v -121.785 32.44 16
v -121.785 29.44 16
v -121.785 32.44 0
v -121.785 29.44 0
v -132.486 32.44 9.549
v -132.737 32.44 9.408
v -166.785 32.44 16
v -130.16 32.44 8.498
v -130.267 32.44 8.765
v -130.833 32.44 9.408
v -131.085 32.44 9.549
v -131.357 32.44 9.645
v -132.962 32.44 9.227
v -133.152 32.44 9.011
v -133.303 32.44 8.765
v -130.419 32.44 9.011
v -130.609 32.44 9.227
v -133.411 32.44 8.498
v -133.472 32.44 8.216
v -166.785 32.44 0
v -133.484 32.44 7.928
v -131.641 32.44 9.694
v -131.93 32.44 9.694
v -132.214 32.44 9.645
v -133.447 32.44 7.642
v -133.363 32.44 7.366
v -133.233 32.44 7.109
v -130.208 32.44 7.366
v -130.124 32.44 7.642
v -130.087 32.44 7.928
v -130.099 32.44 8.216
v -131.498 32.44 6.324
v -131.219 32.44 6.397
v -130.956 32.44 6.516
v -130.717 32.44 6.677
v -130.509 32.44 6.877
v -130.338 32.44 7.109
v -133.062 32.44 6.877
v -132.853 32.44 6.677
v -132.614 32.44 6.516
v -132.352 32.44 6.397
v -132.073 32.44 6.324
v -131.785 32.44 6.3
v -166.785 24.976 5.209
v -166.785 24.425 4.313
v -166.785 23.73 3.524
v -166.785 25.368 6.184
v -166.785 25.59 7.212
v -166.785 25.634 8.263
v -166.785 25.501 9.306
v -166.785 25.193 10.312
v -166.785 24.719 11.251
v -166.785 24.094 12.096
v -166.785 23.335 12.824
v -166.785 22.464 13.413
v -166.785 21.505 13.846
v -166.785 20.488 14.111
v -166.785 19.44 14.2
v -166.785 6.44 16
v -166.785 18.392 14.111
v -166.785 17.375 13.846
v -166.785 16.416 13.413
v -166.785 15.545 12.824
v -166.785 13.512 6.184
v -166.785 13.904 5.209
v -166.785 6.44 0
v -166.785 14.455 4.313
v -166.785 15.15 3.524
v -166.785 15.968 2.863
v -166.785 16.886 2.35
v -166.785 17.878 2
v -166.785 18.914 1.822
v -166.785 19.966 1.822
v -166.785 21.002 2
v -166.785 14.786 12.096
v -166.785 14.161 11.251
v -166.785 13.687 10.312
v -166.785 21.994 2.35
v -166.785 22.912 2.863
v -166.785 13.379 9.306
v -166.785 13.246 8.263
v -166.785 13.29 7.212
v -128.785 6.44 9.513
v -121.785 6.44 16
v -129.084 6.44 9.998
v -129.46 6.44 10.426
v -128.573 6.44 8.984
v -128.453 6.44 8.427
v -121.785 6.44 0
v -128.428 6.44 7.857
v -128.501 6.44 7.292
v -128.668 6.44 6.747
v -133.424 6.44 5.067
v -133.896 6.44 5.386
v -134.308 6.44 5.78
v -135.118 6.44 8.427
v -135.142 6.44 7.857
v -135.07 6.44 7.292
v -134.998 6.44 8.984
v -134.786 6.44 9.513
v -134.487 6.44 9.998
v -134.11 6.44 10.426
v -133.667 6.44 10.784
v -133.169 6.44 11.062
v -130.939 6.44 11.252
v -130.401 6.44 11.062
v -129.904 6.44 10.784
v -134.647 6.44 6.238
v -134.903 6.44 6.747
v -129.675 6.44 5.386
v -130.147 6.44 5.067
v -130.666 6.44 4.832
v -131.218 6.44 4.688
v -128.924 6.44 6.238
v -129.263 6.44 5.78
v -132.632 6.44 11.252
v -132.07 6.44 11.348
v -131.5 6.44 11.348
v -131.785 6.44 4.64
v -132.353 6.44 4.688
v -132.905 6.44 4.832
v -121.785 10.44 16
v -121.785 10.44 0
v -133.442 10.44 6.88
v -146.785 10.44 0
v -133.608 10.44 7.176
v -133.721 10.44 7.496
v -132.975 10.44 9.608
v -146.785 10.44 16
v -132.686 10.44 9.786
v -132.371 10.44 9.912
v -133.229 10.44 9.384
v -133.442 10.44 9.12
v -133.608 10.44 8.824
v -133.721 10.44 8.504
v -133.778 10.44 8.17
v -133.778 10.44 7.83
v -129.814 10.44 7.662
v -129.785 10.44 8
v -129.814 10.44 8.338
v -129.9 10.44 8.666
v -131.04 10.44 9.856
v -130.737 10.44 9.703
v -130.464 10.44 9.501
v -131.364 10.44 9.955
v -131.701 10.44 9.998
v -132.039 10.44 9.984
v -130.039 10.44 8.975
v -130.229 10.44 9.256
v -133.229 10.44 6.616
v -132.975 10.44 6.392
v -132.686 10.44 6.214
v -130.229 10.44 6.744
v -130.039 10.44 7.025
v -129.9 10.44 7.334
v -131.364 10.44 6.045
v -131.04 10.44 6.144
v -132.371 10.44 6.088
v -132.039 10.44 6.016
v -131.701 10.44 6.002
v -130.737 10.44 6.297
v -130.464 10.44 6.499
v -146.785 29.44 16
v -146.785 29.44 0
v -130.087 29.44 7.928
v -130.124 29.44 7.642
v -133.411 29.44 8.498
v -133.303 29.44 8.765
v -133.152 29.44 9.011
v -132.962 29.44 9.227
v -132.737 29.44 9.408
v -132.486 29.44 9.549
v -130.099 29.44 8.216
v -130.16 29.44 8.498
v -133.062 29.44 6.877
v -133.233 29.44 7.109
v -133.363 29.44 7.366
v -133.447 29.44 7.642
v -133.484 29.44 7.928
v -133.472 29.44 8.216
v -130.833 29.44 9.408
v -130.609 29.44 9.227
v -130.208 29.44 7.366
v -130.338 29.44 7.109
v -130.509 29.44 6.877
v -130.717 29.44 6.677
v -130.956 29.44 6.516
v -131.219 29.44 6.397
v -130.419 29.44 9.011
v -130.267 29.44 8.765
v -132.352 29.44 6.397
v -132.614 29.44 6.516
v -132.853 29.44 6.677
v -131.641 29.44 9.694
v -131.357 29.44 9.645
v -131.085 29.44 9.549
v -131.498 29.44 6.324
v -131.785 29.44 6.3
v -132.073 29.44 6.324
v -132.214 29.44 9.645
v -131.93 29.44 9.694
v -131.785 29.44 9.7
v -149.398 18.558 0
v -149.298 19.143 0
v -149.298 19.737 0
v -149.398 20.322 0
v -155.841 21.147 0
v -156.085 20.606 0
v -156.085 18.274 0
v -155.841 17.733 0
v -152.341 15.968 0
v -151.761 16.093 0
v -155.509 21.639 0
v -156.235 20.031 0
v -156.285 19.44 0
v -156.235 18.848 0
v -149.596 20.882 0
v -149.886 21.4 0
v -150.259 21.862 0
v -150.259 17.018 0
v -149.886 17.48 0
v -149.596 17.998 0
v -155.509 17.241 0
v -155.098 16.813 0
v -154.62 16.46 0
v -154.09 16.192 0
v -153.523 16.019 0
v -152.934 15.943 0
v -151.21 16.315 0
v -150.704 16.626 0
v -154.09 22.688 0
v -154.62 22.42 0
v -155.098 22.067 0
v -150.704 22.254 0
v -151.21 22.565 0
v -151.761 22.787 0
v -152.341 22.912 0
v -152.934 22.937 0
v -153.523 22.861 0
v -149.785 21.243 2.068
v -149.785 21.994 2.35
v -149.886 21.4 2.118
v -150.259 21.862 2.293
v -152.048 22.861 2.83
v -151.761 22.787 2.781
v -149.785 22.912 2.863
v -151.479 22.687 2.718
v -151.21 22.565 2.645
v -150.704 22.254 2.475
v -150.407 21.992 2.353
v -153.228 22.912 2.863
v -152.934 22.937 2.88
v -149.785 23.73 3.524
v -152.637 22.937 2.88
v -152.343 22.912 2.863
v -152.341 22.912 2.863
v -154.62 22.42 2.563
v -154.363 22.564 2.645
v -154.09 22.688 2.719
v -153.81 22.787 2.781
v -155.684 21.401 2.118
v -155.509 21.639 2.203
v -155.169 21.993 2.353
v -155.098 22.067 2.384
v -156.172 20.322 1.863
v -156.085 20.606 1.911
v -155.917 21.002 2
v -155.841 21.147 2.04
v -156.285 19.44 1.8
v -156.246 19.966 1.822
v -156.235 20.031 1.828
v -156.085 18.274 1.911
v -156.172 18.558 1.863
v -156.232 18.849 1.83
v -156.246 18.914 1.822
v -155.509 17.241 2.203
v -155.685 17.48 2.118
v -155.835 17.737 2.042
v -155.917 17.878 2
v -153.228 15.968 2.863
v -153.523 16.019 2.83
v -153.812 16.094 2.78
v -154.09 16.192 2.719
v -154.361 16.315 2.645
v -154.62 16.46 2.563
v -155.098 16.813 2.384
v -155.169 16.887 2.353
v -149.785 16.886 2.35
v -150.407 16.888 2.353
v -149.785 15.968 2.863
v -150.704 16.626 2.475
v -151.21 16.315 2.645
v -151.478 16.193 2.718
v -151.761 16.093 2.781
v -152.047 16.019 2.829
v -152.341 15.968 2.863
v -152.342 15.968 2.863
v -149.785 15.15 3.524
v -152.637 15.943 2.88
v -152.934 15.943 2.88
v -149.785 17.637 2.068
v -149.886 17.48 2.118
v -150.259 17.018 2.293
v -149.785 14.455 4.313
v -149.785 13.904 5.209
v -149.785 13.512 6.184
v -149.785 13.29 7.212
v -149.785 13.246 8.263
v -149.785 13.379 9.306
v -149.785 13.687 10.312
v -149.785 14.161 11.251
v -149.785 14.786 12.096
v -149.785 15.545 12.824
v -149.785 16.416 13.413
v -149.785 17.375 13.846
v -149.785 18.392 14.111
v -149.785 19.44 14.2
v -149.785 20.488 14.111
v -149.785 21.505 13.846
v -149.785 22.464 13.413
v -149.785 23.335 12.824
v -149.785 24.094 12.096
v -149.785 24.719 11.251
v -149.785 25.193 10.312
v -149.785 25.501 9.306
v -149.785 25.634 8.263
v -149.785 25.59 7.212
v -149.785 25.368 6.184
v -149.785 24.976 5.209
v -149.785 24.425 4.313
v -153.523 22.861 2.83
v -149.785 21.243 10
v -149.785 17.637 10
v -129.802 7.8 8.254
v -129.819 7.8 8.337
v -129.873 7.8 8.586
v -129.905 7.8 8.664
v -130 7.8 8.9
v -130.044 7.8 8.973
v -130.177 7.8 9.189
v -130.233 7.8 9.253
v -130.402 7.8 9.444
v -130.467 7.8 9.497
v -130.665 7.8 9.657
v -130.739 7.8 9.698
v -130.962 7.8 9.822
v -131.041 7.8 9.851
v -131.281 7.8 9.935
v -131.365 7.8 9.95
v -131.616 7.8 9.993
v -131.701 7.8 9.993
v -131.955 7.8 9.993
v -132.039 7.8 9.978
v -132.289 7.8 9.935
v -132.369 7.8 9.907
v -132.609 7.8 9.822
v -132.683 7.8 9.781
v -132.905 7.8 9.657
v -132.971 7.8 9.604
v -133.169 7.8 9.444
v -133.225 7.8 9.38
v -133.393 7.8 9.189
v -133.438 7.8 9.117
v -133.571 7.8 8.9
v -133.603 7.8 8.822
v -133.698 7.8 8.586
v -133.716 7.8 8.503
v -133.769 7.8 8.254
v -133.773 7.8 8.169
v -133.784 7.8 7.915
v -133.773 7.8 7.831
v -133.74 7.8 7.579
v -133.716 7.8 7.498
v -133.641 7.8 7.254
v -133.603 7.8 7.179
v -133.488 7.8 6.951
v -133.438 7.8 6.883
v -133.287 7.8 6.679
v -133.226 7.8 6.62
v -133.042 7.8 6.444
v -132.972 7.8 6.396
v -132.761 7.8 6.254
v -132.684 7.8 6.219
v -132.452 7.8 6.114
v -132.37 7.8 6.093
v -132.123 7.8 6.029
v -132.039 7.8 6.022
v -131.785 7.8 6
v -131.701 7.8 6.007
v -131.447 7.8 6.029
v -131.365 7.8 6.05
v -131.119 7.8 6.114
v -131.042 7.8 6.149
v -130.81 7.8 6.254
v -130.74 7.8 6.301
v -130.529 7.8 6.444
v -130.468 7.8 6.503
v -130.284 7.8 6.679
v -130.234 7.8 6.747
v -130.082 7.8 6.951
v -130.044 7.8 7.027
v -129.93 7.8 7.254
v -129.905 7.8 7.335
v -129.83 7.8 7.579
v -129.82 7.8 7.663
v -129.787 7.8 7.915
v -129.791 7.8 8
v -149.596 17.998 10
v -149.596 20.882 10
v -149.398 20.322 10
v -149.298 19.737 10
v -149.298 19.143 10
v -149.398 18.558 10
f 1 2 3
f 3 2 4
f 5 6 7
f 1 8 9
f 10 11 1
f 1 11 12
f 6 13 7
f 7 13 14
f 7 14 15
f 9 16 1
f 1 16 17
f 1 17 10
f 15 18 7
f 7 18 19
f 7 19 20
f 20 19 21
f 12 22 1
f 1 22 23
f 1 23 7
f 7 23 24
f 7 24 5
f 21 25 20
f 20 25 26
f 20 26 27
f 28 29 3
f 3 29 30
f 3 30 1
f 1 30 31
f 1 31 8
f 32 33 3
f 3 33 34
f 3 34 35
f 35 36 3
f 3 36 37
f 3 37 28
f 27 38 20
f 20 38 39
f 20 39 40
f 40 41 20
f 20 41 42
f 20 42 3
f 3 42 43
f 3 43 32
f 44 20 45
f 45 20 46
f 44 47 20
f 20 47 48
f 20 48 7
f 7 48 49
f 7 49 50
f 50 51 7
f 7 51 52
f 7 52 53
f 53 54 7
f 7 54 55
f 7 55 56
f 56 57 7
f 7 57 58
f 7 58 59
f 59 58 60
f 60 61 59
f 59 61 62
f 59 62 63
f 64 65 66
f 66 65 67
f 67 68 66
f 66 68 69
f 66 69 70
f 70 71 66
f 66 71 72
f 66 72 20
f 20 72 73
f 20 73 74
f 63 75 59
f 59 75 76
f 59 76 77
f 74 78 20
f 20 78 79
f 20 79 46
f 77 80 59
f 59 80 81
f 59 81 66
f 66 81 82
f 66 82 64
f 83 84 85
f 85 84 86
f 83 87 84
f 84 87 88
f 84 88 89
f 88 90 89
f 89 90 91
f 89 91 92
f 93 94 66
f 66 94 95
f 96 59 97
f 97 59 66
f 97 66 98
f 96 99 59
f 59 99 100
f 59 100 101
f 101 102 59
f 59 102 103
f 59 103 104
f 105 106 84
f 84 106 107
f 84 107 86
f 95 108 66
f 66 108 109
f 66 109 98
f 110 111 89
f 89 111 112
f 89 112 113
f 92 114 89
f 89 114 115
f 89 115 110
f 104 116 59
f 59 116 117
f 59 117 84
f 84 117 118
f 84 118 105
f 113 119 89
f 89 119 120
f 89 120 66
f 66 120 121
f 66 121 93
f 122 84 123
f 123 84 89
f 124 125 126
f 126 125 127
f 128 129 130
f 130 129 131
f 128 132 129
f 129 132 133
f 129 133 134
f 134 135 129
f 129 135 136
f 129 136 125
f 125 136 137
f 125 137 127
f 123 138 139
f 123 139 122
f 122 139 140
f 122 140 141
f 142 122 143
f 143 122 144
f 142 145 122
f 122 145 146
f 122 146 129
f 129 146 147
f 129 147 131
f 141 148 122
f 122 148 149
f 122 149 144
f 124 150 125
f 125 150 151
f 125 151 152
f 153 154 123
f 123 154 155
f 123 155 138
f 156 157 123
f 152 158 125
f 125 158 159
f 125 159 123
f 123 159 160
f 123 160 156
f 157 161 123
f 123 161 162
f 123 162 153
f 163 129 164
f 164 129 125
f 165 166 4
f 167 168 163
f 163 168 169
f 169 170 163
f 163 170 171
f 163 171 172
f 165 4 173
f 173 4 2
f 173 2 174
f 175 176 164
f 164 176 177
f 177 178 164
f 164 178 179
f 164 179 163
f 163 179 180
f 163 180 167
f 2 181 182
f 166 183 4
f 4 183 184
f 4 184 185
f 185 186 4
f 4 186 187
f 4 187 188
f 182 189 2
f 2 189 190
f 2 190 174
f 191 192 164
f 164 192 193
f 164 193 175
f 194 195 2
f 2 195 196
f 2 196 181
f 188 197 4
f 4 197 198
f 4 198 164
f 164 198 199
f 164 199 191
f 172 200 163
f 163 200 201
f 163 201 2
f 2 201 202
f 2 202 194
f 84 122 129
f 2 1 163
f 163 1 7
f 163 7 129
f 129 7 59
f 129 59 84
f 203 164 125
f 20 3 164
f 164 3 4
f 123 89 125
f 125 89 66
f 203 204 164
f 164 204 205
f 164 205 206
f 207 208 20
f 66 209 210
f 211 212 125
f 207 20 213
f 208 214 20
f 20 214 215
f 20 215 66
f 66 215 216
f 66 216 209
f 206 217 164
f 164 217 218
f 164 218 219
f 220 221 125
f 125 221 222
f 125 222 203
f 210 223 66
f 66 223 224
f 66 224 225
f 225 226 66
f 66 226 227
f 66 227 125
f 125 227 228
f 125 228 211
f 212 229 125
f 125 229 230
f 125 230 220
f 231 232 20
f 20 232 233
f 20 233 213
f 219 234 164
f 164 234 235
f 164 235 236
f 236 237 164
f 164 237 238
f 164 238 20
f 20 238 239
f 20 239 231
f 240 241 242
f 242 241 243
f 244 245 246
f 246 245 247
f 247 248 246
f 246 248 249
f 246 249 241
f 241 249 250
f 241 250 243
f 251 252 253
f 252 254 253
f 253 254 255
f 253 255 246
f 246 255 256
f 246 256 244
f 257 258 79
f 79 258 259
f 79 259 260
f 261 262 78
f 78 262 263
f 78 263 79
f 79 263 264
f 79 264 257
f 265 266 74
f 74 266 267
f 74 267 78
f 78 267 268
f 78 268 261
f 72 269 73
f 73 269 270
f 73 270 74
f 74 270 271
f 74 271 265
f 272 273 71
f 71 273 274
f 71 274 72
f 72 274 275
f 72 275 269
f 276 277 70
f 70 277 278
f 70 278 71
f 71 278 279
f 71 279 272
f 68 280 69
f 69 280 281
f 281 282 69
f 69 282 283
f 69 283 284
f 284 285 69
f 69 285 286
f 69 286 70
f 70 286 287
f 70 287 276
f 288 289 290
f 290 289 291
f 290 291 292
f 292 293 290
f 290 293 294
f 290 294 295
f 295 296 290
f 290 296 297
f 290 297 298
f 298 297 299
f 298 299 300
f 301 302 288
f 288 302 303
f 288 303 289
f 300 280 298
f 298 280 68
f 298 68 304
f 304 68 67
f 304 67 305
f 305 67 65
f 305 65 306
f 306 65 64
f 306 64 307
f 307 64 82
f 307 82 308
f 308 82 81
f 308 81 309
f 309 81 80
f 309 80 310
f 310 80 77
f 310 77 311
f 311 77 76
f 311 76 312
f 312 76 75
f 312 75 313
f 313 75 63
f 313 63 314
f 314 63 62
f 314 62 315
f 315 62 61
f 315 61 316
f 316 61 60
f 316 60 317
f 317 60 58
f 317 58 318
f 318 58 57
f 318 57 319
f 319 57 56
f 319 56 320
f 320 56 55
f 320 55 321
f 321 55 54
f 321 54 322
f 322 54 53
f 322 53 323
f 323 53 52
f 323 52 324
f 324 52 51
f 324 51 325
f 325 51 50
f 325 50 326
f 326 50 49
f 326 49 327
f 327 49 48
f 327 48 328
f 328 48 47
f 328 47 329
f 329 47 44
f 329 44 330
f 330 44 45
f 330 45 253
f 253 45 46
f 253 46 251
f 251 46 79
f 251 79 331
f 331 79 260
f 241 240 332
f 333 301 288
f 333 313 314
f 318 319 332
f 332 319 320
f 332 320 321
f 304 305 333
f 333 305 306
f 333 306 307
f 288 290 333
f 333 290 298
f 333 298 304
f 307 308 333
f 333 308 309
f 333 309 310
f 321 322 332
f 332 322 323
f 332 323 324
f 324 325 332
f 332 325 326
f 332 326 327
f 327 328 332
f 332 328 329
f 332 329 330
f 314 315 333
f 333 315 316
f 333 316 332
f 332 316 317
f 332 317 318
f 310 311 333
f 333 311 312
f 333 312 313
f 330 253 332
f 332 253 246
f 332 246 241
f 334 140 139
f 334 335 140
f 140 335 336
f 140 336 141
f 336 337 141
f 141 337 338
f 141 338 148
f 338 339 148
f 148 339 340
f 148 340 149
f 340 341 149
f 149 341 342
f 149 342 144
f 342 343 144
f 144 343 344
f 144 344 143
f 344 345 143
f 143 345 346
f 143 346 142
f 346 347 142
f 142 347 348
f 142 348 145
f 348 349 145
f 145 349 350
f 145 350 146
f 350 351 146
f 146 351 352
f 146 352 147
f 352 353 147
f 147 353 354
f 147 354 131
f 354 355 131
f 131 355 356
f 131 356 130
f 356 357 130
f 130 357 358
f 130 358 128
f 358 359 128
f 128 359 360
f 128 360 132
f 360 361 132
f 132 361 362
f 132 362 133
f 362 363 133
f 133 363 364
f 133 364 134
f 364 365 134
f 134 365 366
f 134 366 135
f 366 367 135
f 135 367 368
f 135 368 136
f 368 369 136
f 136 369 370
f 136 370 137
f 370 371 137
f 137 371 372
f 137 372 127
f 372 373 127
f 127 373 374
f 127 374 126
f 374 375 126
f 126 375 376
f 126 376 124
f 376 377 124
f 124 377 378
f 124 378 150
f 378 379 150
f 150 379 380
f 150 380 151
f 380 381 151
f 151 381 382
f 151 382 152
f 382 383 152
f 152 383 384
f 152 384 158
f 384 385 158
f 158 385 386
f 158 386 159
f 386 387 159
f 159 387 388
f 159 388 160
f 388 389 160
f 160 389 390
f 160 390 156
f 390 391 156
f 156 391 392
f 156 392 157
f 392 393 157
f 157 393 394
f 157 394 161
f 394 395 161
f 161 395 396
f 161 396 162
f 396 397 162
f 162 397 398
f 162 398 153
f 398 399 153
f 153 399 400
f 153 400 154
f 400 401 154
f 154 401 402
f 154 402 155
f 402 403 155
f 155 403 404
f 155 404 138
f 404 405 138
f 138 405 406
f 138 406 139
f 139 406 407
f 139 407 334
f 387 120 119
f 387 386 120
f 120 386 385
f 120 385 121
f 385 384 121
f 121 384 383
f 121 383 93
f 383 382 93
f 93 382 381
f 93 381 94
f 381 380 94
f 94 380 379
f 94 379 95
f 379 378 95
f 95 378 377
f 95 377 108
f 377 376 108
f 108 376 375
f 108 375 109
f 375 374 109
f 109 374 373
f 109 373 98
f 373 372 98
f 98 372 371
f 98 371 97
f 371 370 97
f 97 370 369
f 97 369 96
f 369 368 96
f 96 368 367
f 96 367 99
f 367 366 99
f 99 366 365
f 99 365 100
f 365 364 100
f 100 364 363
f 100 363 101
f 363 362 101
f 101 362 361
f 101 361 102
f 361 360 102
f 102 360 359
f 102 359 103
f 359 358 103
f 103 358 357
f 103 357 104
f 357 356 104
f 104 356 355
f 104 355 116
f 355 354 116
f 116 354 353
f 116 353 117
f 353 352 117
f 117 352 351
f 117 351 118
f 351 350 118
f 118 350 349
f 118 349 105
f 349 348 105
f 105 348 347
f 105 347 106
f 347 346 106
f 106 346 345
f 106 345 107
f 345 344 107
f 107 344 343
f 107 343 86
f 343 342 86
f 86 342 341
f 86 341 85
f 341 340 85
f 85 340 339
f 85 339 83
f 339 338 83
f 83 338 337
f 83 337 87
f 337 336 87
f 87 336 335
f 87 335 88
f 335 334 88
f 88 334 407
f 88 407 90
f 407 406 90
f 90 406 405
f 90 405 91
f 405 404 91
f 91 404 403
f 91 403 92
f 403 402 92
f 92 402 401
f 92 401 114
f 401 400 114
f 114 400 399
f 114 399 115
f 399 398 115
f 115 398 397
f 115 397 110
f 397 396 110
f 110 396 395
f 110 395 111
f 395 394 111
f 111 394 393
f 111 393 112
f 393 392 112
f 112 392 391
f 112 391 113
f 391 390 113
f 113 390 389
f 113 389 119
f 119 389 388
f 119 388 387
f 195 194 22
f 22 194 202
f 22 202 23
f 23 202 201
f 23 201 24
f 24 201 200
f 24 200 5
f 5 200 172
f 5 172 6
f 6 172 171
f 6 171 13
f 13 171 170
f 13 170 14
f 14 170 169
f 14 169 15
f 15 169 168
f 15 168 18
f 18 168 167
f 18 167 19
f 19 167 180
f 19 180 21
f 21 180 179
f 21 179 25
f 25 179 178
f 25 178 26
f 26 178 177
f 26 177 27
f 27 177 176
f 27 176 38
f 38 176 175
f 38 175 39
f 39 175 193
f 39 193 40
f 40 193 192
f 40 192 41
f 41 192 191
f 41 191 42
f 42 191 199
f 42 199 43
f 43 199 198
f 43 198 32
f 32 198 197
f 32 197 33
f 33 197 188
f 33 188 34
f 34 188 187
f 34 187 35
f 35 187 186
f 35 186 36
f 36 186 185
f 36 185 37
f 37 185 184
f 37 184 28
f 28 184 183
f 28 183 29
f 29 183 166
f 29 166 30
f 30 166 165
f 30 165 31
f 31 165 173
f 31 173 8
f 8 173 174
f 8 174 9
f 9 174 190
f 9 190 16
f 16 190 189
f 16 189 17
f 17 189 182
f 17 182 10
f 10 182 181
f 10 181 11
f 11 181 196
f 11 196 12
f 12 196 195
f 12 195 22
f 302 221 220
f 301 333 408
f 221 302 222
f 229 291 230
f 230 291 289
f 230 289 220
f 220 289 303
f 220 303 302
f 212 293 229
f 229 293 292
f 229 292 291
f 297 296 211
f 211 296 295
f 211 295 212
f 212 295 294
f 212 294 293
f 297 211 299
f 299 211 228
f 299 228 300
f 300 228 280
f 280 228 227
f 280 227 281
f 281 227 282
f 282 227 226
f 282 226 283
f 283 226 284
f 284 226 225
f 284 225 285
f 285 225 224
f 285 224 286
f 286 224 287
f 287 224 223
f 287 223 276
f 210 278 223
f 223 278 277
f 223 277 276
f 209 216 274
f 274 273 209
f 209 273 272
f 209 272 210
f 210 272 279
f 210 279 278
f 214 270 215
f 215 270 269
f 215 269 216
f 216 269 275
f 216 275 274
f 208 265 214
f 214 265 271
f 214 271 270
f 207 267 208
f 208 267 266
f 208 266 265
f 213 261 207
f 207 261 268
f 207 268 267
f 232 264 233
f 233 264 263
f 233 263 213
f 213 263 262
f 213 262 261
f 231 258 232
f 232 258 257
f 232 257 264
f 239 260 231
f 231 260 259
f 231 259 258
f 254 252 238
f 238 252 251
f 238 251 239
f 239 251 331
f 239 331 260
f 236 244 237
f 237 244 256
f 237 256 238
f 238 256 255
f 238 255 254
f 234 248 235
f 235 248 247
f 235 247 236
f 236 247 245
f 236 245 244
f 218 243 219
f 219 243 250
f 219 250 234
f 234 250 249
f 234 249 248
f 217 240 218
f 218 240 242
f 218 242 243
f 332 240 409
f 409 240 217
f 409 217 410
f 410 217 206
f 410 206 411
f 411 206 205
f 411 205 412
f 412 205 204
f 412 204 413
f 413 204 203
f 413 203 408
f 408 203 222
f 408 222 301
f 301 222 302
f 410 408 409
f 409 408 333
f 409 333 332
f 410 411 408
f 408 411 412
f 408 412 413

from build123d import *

# Parameters (mm, degrees)
SALIENTE_EXTRUIR1_DEPTH                              = 16
CROQUIS2_R                                           = 6.2
CORTAR_EXTRUIR1_DEPTH                                = 17
CROQUIS3_R                                           = 2
CORTAR_EXTRUIR2_DEPTH                                = 4
REFRENTADO_PARA_TORNILLO_TAP_N_CON_CABEZ_D           = 3.4
REFRENTADO_PARA_TORNILLO_TAP_N_CON_CABEZ_CSINK_D     = 6.72
REFRENTADO_PARA_TORNILLO_TAP_N_CON_CABEZ_CSINK_ANGLE = 90
CROQUIS6_R                                           = 3.5
CORTAR_EXTRUIR3_DEPTH                                = 10


with BuildPart() as part:
    # Croquis1 → Saliente-Extruir1 (new body)
    with BuildSketch(Plane.XY):
        Polygon((-121.785392746, 32.439983022), (-153.785392746, 32.439983022), (-166.785392746, 32.439983022), (-166.785392746, 6.439983022), (-121.785392746, 6.439983022), (-121.785392746, 10.439983022), (-146.785392746, 10.439983022), (-146.785392746, 29.439983022), (-121.785392746, 29.439983022), align=None)
    extrude(amount=SALIENTE_EXTRUIR1_DEPTH)

    # Croquis2 → Cortar-Extruir1 (cut)
    with BuildSketch(Plane.ZY.offset(166.785392746)):
        with Locations((8, 19.439983022)):
            Circle(CROQUIS2_R)
    extrude(amount=-CORTAR_EXTRUIR1_DEPTH, mode=Mode.SUBTRACT)

    # Croquis3 → Cortar-Extruir2 (cut)
    with BuildSketch(Plane.XZ.offset(-6.439983022)):
        with Locations((-131.785392746, 8)):
            Circle(CROQUIS3_R)
    extrude(amount=-CORTAR_EXTRUIR2_DEPTH, mode=Mode.SUBTRACT)

    # Refrentado para tornillo tapón con cabeza plana de clavija de M31 (through all)
    with Locations(Plane(origin=(0, 6.439983022, 0), x_dir=(-1, 0, 0), z_dir=(0, -1, 0))):
        with Locations((131.785392746, -8)):
            CounterSinkHole(REFRENTADO_PARA_TORNILLO_TAP_N_CON_CABEZ_D / 2, REFRENTADO_PARA_TORNILLO_TAP_N_CON_CABEZ_CSINK_D / 2, counter_sink_angle=REFRENTADO_PARA_TORNILLO_TAP_N_CON_CABEZ_CSINK_ANGLE)

    # Croquis6 → Cortar-Extruir3 (cut)
    with BuildSketch(Plane(origin=(0, 0, 0), x_dir=(-1, 0, 0), z_dir=(0, 0, -1))):
        with Locations((152.785392746, 19.439983022)):
            Circle(CROQUIS6_R)
    extrude(amount=-CORTAR_EXTRUIR3_DEPTH, mode=Mode.SUBTRACT)


solid = part.part
